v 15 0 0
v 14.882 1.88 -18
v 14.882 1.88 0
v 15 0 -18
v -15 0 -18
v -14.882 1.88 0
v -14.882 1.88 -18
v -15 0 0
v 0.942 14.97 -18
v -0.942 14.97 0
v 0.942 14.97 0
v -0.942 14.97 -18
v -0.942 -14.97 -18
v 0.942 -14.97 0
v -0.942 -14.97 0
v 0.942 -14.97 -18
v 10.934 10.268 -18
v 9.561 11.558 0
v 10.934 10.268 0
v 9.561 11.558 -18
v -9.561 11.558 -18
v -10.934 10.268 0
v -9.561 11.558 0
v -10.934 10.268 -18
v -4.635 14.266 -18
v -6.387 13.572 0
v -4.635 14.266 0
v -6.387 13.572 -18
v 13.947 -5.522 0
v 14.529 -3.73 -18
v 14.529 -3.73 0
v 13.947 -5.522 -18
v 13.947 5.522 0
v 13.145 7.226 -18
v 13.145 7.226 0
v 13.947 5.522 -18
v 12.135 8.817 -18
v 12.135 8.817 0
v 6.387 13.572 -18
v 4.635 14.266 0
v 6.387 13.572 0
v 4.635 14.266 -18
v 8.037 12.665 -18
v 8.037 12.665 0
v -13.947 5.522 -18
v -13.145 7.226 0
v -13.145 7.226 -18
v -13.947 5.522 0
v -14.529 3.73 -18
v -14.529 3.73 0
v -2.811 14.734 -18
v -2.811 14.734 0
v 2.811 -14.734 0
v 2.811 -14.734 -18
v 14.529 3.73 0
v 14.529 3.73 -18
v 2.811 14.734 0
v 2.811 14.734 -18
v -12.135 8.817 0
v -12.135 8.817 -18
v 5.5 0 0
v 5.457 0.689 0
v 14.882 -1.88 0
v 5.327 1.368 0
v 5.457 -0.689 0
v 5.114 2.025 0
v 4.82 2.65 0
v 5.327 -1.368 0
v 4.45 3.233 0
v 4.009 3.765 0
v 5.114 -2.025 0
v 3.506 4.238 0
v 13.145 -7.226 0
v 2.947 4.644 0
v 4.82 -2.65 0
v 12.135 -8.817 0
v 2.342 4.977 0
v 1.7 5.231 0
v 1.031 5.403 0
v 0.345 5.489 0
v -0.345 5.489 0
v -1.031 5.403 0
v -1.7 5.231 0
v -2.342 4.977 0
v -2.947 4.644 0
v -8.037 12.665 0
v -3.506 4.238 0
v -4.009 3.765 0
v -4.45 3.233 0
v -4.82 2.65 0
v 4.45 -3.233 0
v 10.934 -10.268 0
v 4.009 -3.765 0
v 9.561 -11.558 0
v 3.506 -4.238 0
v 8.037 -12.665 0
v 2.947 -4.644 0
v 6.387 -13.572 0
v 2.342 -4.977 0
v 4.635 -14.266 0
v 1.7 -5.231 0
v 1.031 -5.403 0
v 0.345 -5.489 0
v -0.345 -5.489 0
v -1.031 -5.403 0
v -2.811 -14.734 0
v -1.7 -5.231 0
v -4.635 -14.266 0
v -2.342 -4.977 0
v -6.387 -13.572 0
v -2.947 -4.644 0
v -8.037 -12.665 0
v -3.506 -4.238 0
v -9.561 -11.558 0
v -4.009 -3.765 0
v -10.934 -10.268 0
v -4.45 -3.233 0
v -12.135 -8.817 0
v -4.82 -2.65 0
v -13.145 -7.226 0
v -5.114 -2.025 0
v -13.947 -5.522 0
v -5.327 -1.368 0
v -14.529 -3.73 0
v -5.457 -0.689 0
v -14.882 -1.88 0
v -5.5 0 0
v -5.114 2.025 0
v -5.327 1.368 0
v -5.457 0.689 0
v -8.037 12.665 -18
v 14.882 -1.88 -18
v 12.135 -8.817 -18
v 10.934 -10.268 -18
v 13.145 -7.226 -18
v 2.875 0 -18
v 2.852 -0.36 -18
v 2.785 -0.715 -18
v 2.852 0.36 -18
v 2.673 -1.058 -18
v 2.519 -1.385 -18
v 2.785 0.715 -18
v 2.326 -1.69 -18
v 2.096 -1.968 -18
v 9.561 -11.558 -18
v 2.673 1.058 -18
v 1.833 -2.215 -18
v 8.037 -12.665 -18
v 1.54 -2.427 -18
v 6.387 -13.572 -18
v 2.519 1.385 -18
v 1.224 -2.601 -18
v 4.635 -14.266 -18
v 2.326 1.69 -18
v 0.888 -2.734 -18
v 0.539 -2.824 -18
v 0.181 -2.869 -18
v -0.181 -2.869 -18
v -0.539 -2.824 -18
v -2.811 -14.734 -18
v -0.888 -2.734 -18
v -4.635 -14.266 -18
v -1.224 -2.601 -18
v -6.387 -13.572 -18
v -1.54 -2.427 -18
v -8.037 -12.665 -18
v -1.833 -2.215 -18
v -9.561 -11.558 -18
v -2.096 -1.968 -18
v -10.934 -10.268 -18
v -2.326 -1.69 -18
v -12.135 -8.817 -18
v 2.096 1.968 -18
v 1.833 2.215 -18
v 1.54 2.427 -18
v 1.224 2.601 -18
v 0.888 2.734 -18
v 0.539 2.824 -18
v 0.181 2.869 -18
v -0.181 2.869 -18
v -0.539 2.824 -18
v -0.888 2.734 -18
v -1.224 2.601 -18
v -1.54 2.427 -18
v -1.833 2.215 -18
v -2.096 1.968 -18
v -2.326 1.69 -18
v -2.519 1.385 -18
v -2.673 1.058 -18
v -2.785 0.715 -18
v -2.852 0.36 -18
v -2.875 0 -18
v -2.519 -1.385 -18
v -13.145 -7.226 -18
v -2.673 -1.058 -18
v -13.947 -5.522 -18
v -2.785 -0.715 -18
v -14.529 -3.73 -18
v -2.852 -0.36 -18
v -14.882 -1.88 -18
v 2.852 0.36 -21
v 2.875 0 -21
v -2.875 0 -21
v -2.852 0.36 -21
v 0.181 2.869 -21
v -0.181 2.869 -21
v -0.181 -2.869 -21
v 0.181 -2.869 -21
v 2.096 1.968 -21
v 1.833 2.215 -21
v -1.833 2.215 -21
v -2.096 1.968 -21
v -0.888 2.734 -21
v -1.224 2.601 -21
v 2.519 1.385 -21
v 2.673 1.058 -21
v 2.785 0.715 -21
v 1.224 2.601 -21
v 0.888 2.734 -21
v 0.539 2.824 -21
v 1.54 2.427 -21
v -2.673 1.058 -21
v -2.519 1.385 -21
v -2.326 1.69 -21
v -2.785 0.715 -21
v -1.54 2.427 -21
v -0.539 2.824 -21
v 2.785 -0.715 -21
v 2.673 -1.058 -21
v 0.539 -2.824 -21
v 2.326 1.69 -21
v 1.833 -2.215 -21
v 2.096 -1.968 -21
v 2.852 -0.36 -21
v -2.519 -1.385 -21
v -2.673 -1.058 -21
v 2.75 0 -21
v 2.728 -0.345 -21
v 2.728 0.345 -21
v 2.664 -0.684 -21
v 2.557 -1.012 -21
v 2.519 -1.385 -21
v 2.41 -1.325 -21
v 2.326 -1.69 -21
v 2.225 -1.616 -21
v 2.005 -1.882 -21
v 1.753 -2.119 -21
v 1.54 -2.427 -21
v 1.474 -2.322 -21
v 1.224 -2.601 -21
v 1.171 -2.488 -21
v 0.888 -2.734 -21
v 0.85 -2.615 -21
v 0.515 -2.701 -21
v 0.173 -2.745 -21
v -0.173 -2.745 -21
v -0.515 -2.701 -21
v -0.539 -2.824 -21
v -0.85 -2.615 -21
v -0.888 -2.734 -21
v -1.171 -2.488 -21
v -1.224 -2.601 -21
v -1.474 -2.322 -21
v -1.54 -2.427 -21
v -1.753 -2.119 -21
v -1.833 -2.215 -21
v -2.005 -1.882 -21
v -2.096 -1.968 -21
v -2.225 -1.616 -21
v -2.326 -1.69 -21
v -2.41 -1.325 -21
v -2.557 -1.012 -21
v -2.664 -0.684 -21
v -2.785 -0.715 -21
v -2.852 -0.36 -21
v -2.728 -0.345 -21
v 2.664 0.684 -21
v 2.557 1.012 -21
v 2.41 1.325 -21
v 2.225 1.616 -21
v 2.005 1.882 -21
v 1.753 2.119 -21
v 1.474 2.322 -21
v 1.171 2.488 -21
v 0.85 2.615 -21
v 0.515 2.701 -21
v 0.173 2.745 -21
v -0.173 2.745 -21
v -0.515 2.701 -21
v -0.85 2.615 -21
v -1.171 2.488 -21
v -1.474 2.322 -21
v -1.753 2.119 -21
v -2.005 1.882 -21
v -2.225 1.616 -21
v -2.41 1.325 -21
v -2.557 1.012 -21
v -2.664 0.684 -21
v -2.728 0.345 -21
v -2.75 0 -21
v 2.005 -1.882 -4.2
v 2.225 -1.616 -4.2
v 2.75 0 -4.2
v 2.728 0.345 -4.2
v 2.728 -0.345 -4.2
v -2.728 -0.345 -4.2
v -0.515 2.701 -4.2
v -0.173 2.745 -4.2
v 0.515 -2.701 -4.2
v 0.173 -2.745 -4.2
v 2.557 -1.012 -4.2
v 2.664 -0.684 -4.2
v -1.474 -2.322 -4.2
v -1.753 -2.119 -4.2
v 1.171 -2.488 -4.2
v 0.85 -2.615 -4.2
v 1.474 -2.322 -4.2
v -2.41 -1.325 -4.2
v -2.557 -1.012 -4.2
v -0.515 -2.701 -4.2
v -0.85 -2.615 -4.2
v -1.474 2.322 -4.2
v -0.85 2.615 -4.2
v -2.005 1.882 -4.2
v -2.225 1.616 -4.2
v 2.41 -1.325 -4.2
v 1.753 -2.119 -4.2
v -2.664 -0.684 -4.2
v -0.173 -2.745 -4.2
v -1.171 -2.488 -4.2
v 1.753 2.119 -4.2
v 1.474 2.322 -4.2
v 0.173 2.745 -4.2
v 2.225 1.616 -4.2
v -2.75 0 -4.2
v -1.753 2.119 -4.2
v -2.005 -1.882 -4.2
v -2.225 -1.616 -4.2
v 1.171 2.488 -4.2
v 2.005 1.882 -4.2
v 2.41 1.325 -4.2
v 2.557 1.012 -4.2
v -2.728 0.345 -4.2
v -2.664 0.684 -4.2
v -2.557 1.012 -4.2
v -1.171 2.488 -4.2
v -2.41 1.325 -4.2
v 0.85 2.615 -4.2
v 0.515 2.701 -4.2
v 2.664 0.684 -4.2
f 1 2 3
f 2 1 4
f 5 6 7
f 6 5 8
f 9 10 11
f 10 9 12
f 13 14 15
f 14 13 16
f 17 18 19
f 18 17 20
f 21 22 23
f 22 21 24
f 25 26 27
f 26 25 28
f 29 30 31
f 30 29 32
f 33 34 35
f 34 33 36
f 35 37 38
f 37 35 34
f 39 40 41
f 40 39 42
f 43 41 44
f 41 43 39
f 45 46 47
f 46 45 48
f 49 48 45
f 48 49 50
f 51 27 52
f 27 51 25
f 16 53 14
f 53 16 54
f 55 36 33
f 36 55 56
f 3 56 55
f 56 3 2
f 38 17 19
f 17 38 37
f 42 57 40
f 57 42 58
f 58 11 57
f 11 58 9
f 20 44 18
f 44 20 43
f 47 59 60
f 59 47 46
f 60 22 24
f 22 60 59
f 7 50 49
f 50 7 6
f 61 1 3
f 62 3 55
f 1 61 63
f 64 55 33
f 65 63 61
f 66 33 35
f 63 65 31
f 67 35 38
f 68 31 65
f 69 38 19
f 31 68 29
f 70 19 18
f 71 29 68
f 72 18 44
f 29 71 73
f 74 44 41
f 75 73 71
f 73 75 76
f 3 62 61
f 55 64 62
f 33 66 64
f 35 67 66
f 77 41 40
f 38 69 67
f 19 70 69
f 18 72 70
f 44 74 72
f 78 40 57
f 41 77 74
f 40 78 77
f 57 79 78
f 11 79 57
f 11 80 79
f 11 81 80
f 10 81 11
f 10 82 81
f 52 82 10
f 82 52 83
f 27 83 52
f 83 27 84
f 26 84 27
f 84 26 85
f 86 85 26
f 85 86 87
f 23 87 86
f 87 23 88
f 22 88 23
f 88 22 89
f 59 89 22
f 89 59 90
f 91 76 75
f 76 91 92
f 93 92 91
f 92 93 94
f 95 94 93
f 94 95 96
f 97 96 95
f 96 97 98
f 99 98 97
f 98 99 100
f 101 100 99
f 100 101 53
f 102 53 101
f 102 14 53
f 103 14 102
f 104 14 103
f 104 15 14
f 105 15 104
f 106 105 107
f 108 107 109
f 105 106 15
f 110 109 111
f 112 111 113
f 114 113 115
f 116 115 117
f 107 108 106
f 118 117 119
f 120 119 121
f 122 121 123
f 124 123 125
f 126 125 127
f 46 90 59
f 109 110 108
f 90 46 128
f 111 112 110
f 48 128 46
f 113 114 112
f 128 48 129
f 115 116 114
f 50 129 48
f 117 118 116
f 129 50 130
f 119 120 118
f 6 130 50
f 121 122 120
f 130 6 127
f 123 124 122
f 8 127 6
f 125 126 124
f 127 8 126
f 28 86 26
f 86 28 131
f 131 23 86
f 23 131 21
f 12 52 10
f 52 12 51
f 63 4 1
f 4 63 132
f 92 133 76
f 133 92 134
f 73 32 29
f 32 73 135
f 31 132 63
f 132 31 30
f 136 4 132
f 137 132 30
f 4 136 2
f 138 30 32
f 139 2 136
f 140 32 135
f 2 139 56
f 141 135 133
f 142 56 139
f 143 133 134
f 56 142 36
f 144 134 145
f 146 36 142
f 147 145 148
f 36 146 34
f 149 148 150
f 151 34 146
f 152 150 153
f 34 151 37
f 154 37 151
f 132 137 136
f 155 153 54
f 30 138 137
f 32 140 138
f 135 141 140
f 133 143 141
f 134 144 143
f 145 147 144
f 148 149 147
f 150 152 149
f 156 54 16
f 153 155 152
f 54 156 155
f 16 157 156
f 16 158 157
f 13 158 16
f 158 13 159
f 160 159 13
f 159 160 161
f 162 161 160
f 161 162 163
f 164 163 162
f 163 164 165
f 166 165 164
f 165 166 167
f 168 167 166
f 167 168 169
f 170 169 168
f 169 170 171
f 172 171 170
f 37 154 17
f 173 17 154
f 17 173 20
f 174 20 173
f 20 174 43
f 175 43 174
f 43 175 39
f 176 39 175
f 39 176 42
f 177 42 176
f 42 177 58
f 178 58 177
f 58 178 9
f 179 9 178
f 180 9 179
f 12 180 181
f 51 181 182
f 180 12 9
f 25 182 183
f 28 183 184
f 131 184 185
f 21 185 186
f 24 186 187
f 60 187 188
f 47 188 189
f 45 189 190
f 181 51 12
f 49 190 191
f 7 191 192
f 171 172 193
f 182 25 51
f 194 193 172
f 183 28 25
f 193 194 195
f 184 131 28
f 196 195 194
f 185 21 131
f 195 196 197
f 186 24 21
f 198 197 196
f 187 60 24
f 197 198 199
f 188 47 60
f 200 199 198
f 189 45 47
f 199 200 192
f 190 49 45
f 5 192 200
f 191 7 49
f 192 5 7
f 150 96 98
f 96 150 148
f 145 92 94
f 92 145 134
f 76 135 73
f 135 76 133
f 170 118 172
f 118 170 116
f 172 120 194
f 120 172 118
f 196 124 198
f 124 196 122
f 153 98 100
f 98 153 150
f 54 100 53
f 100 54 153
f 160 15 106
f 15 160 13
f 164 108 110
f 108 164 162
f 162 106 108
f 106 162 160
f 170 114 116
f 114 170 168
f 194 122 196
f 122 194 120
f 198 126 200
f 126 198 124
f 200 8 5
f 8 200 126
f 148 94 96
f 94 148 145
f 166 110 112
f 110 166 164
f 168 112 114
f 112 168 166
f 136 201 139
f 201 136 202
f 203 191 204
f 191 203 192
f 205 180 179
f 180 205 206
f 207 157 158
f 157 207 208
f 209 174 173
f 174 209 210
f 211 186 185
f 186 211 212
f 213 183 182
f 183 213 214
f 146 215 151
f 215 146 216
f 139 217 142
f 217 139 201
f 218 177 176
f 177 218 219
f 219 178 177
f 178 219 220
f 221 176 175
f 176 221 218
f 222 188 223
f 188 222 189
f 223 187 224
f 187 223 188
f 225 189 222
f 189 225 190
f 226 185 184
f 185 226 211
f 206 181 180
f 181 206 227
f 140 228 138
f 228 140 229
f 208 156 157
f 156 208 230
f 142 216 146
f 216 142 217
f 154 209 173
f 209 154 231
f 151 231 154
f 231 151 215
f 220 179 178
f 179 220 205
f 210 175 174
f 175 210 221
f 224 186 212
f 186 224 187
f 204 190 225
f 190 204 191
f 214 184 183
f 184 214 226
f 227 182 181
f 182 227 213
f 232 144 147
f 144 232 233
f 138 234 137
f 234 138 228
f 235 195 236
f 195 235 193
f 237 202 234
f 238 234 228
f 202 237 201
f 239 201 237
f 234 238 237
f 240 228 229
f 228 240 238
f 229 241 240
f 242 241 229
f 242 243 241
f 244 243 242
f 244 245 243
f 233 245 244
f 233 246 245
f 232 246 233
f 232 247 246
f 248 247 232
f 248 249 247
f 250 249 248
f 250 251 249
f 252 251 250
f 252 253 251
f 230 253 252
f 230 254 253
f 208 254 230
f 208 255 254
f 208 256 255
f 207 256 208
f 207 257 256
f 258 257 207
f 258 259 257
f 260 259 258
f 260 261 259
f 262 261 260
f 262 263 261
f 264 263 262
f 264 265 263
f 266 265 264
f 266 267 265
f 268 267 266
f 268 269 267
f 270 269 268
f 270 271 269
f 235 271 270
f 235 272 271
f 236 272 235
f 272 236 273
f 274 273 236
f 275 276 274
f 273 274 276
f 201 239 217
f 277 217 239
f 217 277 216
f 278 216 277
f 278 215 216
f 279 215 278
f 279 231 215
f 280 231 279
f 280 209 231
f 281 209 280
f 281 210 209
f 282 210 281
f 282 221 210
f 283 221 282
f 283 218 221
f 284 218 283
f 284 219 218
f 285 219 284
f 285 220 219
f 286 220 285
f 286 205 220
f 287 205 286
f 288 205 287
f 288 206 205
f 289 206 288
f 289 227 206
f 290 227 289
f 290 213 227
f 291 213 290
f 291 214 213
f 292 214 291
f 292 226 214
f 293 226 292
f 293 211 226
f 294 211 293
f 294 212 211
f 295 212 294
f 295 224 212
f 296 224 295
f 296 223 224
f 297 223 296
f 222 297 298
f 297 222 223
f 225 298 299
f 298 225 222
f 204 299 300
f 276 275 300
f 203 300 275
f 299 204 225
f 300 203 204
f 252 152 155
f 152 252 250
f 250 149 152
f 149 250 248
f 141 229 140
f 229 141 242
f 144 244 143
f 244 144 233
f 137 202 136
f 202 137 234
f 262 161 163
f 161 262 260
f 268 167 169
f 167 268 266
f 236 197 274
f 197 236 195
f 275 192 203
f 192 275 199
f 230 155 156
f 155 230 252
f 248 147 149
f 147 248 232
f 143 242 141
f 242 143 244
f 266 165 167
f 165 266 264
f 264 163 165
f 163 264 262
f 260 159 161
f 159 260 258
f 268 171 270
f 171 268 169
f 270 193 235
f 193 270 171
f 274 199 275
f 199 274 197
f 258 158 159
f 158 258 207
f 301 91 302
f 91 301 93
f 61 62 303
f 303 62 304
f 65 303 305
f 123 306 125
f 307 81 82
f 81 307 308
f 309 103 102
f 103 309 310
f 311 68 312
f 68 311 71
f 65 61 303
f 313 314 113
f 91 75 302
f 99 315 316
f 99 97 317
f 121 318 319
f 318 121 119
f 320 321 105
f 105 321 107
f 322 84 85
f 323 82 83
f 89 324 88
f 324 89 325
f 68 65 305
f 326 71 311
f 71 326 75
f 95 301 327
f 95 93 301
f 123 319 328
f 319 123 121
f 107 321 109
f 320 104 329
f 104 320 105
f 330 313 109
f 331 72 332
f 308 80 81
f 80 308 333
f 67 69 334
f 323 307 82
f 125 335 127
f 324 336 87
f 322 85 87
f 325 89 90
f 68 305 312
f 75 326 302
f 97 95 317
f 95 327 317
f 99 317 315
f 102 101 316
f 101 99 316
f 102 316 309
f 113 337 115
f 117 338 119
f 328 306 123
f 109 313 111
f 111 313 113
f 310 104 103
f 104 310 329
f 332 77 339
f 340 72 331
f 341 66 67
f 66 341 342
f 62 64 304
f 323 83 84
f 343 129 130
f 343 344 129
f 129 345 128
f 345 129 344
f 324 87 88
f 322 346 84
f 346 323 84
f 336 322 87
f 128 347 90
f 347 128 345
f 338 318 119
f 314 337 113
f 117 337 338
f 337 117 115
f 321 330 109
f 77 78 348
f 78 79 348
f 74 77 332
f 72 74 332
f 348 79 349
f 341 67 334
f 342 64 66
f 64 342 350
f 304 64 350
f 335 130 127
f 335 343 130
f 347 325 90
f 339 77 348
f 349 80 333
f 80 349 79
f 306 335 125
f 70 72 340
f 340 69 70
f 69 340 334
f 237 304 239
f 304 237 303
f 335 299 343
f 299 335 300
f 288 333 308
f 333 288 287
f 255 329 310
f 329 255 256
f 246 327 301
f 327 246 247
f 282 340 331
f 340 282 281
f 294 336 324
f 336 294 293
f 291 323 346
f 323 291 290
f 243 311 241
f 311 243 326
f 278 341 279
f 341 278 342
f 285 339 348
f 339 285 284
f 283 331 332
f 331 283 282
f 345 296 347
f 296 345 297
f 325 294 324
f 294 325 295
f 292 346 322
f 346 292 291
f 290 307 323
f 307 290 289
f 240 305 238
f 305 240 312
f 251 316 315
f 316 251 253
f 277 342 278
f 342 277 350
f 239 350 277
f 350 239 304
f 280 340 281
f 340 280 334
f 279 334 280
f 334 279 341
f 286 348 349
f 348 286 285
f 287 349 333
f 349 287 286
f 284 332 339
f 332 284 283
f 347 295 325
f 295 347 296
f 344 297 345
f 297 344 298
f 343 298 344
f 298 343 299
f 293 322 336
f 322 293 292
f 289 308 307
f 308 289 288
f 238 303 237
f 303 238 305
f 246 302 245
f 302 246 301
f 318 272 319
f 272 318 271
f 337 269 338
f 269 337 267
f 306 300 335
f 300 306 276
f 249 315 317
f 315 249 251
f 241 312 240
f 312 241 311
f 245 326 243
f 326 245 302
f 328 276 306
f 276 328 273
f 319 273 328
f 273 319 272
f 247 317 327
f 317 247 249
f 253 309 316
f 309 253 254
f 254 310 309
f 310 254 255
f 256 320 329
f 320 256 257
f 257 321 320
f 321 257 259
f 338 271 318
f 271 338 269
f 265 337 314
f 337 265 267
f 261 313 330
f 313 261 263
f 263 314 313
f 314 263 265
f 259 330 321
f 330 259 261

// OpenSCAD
$fn = 50;


difference() {
	union() {
		translate(v = [0, 0, -18.0000000000]) {
			cylinder(h = 18, r = 15.0000000000);
		}
		#translate(v = [0, 0, -21.0000000000]) {
			cylinder(h = 21, r = 2.8750000000);
		}
	}
	union() {
		translate(v = [0, 0, 0]) {
			rotate(a = [0, 0, 0]) {
				difference() {
					union() {
						translate(v = [0, 0, -21.0000000000]) {
							cylinder(h = 21, r = 2.2500000000);
						}
						translate(v = [0, 0, -4.2000000000]) {
							cylinder(h = 4.2000000000, r1 = 2.7500000000, r2 = 5.5000000000);
						}
						translate(v = [0, 0, -21.0000000000]) {
							cylinder(h = 21, r = 2.7500000000);
						}
						translate(v = [0, 0, -21.0000000000]) {
							cylinder(h = 21, r = 2.2500000000);
						}
					}
					union();
				}
			}
		}
	}
}
